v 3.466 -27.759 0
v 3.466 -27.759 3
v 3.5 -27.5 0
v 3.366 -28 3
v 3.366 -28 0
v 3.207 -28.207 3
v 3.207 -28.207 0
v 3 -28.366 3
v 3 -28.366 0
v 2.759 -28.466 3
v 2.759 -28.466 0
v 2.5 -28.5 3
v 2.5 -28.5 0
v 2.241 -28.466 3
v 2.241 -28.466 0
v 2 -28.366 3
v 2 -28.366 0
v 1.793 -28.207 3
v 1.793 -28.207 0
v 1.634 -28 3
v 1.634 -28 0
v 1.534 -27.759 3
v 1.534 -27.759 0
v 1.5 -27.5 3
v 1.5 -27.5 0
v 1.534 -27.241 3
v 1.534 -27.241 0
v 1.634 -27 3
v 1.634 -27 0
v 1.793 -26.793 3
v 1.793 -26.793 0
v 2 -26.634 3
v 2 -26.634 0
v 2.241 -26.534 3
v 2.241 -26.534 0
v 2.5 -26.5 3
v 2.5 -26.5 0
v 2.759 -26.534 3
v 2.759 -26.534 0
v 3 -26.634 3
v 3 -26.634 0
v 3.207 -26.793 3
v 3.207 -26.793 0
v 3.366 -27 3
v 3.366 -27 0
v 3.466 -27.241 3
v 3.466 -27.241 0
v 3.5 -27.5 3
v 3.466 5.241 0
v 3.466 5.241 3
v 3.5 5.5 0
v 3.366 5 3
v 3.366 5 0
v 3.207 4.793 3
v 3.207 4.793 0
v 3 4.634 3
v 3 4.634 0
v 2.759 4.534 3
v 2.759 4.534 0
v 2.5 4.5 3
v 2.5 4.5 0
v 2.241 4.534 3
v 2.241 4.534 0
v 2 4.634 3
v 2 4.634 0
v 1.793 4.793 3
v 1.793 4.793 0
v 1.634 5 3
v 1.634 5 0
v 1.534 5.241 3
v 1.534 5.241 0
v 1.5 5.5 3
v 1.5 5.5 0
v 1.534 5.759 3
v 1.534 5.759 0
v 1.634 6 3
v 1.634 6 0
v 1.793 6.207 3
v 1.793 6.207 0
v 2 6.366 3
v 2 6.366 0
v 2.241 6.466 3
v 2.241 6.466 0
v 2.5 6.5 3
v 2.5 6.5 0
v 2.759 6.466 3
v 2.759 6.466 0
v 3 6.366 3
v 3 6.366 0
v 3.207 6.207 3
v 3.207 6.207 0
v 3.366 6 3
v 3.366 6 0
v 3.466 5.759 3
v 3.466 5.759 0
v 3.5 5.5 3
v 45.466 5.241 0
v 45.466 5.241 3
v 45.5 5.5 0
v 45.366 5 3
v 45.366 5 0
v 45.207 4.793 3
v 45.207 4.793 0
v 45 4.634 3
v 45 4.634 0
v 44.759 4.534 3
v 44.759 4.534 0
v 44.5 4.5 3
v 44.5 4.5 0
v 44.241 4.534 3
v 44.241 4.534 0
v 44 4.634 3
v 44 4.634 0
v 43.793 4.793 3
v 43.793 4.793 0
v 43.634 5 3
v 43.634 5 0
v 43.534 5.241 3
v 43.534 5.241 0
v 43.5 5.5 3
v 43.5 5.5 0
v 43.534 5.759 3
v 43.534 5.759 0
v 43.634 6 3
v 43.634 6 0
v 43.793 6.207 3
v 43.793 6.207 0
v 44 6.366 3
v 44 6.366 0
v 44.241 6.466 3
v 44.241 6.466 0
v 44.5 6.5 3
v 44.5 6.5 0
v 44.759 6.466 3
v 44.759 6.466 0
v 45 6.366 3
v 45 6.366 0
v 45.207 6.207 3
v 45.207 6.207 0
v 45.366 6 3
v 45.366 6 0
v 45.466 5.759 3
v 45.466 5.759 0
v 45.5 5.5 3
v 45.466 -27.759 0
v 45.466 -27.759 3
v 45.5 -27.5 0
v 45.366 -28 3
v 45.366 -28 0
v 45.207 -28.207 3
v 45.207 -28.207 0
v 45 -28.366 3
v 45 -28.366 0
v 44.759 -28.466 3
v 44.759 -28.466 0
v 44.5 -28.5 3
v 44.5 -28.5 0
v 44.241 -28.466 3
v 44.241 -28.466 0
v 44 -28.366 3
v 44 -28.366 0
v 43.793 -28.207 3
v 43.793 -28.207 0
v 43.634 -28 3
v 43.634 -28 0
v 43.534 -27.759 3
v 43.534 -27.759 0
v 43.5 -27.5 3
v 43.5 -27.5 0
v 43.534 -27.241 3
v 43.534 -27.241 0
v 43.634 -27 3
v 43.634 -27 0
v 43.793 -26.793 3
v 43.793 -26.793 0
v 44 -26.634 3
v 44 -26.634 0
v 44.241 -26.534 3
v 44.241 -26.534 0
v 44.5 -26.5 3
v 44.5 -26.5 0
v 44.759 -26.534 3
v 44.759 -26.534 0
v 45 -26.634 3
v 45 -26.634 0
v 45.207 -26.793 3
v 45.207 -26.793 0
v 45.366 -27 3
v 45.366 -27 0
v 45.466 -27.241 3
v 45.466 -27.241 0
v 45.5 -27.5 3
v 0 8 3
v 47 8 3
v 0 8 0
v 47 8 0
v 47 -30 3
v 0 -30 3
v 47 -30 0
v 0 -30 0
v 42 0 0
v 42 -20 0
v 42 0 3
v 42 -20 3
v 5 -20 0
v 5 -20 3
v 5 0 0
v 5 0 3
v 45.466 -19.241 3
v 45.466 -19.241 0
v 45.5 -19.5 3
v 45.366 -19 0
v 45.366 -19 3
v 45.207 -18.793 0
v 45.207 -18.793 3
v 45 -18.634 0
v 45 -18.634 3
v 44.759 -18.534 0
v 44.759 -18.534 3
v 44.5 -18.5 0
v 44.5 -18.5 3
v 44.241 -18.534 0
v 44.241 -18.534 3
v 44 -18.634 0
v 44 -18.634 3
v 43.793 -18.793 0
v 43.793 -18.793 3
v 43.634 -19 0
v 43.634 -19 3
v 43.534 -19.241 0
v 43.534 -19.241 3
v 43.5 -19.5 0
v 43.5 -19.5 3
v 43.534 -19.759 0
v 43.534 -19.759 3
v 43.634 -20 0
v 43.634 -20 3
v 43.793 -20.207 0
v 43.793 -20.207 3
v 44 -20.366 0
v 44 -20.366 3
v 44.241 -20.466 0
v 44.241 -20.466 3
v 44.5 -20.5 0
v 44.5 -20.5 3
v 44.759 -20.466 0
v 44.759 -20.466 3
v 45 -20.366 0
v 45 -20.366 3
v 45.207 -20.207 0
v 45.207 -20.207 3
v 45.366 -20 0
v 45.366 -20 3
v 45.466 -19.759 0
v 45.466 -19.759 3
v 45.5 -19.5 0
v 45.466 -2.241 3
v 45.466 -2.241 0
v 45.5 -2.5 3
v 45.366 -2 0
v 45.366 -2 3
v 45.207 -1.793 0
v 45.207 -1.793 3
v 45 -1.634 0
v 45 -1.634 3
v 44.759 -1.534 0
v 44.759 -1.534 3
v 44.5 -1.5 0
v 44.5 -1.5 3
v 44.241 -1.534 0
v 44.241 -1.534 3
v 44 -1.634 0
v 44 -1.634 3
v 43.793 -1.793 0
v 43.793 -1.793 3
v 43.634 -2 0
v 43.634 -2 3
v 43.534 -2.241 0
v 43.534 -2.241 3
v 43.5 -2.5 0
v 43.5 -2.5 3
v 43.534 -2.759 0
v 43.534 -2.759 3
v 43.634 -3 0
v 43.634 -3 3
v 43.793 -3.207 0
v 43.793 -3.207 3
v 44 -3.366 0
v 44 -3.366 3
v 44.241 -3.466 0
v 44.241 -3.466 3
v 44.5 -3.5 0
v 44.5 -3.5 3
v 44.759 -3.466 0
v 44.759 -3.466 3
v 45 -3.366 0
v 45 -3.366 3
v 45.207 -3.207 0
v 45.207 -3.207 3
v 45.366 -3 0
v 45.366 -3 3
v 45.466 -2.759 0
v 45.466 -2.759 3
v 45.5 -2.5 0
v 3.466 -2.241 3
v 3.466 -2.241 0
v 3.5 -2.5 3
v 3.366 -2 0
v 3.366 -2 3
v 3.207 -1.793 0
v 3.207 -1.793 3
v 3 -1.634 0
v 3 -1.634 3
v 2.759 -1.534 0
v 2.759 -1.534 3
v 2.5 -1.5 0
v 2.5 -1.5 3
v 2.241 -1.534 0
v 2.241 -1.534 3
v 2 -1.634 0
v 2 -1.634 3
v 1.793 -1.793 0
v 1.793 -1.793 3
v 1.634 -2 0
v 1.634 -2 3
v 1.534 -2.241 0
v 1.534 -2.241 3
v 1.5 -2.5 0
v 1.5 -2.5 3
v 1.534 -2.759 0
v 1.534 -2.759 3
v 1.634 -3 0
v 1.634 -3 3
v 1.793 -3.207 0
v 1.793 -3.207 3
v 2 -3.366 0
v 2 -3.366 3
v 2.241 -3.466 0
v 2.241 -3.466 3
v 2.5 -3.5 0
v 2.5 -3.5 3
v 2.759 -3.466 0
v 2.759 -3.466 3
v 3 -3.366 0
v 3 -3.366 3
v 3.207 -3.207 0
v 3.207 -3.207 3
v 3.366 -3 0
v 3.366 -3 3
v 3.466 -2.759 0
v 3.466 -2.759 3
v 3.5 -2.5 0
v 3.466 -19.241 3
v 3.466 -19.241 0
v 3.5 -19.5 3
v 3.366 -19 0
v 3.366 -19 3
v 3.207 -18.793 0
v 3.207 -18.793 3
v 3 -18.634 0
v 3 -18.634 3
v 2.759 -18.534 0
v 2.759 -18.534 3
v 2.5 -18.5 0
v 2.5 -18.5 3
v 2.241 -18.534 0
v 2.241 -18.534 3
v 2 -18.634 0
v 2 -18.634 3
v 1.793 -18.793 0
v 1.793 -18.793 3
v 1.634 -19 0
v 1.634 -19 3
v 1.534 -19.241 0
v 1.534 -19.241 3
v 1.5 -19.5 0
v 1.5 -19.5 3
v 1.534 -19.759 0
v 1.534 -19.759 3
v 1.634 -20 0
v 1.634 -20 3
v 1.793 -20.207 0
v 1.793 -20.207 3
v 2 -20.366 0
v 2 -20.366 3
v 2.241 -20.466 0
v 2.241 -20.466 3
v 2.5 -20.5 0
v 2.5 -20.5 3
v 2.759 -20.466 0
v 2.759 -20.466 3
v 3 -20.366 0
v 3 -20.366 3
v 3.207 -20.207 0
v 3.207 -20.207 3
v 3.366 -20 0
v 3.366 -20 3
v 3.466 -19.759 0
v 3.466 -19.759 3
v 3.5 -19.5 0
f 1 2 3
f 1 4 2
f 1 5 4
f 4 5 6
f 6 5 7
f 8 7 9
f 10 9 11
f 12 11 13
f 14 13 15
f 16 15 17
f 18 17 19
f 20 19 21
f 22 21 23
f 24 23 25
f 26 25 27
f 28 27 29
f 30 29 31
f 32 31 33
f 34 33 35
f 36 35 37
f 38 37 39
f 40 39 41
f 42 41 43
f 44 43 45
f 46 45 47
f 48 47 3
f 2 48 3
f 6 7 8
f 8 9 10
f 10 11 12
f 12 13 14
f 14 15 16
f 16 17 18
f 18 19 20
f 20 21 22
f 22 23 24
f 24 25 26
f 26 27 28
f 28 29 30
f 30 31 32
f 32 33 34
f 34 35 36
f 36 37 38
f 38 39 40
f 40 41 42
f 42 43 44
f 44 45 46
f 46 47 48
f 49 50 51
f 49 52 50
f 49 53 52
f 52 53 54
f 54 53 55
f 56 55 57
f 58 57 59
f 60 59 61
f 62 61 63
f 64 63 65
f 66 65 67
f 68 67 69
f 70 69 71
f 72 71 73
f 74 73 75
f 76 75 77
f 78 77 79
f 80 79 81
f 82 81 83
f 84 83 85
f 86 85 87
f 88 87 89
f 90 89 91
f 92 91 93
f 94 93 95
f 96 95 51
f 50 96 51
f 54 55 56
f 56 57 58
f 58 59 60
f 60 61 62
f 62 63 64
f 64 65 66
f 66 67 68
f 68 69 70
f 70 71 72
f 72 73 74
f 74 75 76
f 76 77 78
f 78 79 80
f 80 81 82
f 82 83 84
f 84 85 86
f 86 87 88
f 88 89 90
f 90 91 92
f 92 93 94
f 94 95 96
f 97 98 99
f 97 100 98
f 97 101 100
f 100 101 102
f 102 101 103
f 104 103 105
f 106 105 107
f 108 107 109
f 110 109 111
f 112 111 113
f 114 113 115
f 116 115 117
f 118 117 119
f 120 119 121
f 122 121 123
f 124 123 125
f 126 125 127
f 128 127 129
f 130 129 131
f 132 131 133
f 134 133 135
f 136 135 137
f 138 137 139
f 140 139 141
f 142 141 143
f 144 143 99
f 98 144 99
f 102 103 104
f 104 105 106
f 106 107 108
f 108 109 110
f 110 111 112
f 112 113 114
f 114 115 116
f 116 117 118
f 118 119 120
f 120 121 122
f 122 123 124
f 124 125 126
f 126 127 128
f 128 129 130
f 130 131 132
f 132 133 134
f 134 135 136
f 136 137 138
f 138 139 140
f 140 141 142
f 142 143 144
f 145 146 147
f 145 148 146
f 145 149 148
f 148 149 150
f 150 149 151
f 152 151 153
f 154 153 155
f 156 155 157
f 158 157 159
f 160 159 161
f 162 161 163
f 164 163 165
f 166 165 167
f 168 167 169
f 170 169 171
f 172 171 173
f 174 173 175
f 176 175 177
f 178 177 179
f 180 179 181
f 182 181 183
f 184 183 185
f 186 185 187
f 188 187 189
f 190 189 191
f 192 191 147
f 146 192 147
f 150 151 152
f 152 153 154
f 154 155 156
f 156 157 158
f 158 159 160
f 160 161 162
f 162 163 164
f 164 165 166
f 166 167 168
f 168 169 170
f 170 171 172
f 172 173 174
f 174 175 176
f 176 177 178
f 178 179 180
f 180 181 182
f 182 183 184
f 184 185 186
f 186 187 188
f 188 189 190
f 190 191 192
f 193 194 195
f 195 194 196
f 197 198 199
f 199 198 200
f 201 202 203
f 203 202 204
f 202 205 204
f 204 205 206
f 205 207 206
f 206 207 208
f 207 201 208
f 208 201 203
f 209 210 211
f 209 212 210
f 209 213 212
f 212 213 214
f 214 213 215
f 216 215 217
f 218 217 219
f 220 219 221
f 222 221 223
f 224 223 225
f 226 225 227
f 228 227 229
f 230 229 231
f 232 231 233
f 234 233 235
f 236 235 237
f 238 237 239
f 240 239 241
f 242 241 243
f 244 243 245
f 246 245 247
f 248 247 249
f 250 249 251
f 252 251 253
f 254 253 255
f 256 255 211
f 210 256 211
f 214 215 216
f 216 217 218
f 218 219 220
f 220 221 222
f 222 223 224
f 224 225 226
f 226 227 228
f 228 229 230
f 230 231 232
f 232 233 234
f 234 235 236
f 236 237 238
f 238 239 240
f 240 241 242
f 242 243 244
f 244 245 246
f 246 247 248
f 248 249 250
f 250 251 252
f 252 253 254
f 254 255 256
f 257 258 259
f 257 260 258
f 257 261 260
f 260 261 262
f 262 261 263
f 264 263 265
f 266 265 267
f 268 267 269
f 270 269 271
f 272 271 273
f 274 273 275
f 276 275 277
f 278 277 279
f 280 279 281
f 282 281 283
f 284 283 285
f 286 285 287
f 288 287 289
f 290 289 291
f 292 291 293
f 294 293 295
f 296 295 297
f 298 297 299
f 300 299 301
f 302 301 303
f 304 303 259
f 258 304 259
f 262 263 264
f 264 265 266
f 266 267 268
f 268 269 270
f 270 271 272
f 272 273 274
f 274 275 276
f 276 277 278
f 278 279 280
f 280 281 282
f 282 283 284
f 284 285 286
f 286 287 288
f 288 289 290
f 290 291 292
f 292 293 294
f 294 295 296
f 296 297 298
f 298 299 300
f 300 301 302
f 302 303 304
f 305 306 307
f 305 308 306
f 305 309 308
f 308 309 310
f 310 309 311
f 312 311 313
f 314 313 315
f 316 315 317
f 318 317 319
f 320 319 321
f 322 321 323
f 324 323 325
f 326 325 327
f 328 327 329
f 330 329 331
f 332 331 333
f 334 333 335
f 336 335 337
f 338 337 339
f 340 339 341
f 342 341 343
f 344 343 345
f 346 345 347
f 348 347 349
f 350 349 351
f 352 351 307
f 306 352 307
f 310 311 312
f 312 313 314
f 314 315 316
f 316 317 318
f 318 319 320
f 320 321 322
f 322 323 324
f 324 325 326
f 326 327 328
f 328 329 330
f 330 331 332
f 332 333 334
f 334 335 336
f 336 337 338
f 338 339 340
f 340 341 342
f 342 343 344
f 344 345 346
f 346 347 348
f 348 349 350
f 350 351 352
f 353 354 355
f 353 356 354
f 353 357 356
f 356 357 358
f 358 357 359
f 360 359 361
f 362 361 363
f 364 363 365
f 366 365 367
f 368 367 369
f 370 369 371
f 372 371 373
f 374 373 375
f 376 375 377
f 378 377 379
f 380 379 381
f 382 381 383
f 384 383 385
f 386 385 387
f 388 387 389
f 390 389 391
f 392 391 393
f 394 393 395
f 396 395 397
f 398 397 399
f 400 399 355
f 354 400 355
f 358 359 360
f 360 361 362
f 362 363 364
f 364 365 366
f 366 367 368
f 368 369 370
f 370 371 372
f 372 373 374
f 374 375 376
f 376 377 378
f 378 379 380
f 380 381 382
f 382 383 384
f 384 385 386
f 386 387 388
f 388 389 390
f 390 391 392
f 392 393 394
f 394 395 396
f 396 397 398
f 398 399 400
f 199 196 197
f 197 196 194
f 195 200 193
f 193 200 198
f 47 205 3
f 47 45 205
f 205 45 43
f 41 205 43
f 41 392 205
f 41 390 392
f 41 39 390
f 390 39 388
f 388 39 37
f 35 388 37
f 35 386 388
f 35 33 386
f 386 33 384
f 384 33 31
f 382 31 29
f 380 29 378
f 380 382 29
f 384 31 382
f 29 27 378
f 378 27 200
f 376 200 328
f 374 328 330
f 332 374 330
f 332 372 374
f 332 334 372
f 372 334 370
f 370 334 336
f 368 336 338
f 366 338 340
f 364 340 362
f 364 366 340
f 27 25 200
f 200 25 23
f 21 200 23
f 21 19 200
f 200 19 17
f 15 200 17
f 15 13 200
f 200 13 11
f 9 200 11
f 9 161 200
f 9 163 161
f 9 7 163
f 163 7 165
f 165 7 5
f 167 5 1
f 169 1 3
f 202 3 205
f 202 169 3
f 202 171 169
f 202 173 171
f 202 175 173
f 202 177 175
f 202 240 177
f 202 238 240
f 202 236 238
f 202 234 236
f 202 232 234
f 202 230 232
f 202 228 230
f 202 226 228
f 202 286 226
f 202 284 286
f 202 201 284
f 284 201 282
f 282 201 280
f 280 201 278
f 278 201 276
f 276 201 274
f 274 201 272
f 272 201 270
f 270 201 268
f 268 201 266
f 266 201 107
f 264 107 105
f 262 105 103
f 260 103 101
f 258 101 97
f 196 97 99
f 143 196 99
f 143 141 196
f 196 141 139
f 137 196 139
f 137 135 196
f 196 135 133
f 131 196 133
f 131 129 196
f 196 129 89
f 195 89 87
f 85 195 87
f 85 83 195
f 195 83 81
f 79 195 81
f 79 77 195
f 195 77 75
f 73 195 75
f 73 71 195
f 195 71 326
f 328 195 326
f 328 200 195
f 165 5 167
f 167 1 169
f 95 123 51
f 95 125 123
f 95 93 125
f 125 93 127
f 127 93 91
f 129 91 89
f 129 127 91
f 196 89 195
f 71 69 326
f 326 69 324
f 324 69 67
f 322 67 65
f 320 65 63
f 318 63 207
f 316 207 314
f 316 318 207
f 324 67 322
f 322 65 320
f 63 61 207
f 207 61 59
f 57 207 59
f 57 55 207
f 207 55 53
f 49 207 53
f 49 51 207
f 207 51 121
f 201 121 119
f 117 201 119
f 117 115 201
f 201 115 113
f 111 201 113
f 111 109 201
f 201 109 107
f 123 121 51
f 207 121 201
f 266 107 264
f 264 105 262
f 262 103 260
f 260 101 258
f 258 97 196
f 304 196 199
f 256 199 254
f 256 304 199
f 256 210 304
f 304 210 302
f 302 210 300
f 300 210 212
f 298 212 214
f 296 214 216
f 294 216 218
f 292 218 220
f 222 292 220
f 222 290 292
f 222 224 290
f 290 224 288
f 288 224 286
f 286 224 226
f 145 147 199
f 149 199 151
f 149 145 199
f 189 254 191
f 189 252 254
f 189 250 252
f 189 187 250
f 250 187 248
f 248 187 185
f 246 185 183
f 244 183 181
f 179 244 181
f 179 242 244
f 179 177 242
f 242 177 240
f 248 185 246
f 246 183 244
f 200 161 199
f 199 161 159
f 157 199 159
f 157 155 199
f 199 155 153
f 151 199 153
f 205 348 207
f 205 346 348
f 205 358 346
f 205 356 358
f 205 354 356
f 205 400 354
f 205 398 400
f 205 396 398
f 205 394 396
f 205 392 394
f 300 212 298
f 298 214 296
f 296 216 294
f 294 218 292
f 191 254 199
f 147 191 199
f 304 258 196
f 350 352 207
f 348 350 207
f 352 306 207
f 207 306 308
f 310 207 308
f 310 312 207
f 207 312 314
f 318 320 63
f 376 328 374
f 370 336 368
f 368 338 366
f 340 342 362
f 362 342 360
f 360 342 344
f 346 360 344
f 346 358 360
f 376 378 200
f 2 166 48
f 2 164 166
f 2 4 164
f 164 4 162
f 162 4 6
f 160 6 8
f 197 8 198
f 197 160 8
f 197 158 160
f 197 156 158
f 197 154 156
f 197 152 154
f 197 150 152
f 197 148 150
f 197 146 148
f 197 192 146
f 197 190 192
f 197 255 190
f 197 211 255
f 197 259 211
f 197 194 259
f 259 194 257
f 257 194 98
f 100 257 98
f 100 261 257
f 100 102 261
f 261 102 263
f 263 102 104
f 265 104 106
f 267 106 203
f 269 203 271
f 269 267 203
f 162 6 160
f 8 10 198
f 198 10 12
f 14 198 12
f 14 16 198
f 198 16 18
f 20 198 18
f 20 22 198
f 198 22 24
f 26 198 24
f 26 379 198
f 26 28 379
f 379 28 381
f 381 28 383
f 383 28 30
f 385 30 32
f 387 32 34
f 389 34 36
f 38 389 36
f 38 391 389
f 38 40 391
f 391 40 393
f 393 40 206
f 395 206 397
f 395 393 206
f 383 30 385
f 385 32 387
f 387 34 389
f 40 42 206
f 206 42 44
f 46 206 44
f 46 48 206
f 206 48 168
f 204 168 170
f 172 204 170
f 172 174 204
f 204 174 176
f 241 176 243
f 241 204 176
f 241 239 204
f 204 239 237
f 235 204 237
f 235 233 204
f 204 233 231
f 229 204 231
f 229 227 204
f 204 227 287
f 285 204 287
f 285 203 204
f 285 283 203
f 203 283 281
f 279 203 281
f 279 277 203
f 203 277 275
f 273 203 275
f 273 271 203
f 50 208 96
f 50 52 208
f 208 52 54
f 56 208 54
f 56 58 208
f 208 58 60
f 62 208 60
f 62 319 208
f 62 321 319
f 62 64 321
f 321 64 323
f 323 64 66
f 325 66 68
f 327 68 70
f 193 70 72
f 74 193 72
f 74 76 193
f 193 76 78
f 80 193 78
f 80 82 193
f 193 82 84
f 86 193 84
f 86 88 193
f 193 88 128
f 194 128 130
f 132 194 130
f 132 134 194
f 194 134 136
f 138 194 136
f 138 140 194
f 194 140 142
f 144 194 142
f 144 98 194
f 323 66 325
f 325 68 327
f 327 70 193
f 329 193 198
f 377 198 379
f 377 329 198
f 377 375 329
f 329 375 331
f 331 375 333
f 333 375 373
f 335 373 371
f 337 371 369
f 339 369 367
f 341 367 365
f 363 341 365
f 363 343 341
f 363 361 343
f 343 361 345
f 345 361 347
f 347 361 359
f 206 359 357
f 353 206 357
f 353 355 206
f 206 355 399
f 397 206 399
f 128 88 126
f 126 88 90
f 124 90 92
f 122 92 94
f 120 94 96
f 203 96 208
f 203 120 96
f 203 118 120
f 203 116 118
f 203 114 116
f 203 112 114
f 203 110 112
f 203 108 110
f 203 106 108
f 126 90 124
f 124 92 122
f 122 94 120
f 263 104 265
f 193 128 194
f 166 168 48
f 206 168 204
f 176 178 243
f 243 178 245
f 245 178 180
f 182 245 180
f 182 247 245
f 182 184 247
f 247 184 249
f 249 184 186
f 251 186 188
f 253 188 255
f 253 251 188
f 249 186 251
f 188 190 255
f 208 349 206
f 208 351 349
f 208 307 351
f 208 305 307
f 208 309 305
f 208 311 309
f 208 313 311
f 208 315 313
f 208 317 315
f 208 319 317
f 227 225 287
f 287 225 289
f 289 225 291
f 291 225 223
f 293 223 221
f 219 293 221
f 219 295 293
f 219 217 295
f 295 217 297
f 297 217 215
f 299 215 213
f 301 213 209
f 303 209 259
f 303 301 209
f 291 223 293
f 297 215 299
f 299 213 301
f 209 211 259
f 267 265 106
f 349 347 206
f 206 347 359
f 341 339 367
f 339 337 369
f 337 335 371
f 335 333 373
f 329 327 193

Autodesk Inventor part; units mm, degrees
ref_plane "YZ Plane" through (0, 0, 0) normal (1, 0, 0) x (0, 1, 0)
ref_plane "XZ Plane" through (0, 0, 0) normal (0, 1, 0) x (-1, 0, 0)
ref_plane "Work Plane1" through (0, 0, 0) normal (0, 0, 1) x (1, 0, 0)
sketch "Sketch1" plane through (0, 0, 0) normal (0, 0, 1) x (1, 0, 0)
  circle A0 centre (2.5, -19.5) radius 1 projected
  circle A1 centre (2.5, -2.5) radius 1 projected
  circle A2 centre (44.5, -2.5) radius 1 projected
  circle A3 centre (44.5, -19.5) radius 1 projected
  line L0 (0, -25) -> (0, 3) projected
  line L1 (0, -25) -> (47, -25) projected
  line L2 (47, -25) -> (47, 3) projected
  line L3 (0, 3) -> (47, 3) projected
  line L4 (5, 0) -> (42, 0) projected
  line L5 (42, 0) -> (42, -20) projected
  line L6 (42, -20) -> (5, -20) projected
  line L7 (5, -20) -> (5, 0) projected
  point P0 (0, 0)
extrude "Extrusion1" add sketch "Sketch1" along normal blind 3
sketch "Sketch2" plane through (0, 0, 3) normal (0, 0, 1) x (1, 0, 0)
  line L0 (47, 3) -> (0, 3) projected
  line L1 (47, 3) -> (0, 3)
  line L2 (0, 3) -> (0, 8)
  line L3 (0, 8) -> (47, 8)
  line L4 (47, 8) -> (47, 3)
  line L5 (0, -25) -> (47, -25) projected
  line L6 (0, -25) -> (47, -25)
  line L7 (47, -25) -> (47, -30)
  line L8 (47, -30) -> (0, -30)
  line L9 (0, -30) -> (0, -25)
  point P0 (0, 0)
  dimension "d2" = 5
  dimension "d3" = 5
extrude "Extrusion2" add sketch "Sketch2" against normal blind 3
sketch "Sketch4" plane through (0, 0, 3) normal (0, 0, 1) x (1, 0, 0)
  circle A0 centre (2.5, -2.5) radius 1 projected
  circle A1 centre (44.5, -2.5) radius 1 projected
  circle A2 centre (44.5, -19.5) radius 1 projected
  circle A3 centre (2.5, -19.5) radius 1 projected
  circle A4 centre (2.5, 5.5) radius 1
  circle A5 centre (44.5, 5.5) radius 1
  circle A6 centre (2.5, -27.5) radius 1
  circle A7 centre (44.5, -27.5) radius 1
  line L0 (0, 8) -> (47, 8) projected
  line L1 (47, -30) -> (0, -30) projected
  point P0 (0, 0)
  dimension "d6" = 2.5
  dimension "d7" = 2.5
  dimension "d8" = 2.5
  dimension "d9" = 2.5
extrude "Extrusion3" cut sketch "Sketch4" against normal blind 3 contours A4 | A5 | A6 | A7
properties part number "ProxSensor_Bracket_Back"
